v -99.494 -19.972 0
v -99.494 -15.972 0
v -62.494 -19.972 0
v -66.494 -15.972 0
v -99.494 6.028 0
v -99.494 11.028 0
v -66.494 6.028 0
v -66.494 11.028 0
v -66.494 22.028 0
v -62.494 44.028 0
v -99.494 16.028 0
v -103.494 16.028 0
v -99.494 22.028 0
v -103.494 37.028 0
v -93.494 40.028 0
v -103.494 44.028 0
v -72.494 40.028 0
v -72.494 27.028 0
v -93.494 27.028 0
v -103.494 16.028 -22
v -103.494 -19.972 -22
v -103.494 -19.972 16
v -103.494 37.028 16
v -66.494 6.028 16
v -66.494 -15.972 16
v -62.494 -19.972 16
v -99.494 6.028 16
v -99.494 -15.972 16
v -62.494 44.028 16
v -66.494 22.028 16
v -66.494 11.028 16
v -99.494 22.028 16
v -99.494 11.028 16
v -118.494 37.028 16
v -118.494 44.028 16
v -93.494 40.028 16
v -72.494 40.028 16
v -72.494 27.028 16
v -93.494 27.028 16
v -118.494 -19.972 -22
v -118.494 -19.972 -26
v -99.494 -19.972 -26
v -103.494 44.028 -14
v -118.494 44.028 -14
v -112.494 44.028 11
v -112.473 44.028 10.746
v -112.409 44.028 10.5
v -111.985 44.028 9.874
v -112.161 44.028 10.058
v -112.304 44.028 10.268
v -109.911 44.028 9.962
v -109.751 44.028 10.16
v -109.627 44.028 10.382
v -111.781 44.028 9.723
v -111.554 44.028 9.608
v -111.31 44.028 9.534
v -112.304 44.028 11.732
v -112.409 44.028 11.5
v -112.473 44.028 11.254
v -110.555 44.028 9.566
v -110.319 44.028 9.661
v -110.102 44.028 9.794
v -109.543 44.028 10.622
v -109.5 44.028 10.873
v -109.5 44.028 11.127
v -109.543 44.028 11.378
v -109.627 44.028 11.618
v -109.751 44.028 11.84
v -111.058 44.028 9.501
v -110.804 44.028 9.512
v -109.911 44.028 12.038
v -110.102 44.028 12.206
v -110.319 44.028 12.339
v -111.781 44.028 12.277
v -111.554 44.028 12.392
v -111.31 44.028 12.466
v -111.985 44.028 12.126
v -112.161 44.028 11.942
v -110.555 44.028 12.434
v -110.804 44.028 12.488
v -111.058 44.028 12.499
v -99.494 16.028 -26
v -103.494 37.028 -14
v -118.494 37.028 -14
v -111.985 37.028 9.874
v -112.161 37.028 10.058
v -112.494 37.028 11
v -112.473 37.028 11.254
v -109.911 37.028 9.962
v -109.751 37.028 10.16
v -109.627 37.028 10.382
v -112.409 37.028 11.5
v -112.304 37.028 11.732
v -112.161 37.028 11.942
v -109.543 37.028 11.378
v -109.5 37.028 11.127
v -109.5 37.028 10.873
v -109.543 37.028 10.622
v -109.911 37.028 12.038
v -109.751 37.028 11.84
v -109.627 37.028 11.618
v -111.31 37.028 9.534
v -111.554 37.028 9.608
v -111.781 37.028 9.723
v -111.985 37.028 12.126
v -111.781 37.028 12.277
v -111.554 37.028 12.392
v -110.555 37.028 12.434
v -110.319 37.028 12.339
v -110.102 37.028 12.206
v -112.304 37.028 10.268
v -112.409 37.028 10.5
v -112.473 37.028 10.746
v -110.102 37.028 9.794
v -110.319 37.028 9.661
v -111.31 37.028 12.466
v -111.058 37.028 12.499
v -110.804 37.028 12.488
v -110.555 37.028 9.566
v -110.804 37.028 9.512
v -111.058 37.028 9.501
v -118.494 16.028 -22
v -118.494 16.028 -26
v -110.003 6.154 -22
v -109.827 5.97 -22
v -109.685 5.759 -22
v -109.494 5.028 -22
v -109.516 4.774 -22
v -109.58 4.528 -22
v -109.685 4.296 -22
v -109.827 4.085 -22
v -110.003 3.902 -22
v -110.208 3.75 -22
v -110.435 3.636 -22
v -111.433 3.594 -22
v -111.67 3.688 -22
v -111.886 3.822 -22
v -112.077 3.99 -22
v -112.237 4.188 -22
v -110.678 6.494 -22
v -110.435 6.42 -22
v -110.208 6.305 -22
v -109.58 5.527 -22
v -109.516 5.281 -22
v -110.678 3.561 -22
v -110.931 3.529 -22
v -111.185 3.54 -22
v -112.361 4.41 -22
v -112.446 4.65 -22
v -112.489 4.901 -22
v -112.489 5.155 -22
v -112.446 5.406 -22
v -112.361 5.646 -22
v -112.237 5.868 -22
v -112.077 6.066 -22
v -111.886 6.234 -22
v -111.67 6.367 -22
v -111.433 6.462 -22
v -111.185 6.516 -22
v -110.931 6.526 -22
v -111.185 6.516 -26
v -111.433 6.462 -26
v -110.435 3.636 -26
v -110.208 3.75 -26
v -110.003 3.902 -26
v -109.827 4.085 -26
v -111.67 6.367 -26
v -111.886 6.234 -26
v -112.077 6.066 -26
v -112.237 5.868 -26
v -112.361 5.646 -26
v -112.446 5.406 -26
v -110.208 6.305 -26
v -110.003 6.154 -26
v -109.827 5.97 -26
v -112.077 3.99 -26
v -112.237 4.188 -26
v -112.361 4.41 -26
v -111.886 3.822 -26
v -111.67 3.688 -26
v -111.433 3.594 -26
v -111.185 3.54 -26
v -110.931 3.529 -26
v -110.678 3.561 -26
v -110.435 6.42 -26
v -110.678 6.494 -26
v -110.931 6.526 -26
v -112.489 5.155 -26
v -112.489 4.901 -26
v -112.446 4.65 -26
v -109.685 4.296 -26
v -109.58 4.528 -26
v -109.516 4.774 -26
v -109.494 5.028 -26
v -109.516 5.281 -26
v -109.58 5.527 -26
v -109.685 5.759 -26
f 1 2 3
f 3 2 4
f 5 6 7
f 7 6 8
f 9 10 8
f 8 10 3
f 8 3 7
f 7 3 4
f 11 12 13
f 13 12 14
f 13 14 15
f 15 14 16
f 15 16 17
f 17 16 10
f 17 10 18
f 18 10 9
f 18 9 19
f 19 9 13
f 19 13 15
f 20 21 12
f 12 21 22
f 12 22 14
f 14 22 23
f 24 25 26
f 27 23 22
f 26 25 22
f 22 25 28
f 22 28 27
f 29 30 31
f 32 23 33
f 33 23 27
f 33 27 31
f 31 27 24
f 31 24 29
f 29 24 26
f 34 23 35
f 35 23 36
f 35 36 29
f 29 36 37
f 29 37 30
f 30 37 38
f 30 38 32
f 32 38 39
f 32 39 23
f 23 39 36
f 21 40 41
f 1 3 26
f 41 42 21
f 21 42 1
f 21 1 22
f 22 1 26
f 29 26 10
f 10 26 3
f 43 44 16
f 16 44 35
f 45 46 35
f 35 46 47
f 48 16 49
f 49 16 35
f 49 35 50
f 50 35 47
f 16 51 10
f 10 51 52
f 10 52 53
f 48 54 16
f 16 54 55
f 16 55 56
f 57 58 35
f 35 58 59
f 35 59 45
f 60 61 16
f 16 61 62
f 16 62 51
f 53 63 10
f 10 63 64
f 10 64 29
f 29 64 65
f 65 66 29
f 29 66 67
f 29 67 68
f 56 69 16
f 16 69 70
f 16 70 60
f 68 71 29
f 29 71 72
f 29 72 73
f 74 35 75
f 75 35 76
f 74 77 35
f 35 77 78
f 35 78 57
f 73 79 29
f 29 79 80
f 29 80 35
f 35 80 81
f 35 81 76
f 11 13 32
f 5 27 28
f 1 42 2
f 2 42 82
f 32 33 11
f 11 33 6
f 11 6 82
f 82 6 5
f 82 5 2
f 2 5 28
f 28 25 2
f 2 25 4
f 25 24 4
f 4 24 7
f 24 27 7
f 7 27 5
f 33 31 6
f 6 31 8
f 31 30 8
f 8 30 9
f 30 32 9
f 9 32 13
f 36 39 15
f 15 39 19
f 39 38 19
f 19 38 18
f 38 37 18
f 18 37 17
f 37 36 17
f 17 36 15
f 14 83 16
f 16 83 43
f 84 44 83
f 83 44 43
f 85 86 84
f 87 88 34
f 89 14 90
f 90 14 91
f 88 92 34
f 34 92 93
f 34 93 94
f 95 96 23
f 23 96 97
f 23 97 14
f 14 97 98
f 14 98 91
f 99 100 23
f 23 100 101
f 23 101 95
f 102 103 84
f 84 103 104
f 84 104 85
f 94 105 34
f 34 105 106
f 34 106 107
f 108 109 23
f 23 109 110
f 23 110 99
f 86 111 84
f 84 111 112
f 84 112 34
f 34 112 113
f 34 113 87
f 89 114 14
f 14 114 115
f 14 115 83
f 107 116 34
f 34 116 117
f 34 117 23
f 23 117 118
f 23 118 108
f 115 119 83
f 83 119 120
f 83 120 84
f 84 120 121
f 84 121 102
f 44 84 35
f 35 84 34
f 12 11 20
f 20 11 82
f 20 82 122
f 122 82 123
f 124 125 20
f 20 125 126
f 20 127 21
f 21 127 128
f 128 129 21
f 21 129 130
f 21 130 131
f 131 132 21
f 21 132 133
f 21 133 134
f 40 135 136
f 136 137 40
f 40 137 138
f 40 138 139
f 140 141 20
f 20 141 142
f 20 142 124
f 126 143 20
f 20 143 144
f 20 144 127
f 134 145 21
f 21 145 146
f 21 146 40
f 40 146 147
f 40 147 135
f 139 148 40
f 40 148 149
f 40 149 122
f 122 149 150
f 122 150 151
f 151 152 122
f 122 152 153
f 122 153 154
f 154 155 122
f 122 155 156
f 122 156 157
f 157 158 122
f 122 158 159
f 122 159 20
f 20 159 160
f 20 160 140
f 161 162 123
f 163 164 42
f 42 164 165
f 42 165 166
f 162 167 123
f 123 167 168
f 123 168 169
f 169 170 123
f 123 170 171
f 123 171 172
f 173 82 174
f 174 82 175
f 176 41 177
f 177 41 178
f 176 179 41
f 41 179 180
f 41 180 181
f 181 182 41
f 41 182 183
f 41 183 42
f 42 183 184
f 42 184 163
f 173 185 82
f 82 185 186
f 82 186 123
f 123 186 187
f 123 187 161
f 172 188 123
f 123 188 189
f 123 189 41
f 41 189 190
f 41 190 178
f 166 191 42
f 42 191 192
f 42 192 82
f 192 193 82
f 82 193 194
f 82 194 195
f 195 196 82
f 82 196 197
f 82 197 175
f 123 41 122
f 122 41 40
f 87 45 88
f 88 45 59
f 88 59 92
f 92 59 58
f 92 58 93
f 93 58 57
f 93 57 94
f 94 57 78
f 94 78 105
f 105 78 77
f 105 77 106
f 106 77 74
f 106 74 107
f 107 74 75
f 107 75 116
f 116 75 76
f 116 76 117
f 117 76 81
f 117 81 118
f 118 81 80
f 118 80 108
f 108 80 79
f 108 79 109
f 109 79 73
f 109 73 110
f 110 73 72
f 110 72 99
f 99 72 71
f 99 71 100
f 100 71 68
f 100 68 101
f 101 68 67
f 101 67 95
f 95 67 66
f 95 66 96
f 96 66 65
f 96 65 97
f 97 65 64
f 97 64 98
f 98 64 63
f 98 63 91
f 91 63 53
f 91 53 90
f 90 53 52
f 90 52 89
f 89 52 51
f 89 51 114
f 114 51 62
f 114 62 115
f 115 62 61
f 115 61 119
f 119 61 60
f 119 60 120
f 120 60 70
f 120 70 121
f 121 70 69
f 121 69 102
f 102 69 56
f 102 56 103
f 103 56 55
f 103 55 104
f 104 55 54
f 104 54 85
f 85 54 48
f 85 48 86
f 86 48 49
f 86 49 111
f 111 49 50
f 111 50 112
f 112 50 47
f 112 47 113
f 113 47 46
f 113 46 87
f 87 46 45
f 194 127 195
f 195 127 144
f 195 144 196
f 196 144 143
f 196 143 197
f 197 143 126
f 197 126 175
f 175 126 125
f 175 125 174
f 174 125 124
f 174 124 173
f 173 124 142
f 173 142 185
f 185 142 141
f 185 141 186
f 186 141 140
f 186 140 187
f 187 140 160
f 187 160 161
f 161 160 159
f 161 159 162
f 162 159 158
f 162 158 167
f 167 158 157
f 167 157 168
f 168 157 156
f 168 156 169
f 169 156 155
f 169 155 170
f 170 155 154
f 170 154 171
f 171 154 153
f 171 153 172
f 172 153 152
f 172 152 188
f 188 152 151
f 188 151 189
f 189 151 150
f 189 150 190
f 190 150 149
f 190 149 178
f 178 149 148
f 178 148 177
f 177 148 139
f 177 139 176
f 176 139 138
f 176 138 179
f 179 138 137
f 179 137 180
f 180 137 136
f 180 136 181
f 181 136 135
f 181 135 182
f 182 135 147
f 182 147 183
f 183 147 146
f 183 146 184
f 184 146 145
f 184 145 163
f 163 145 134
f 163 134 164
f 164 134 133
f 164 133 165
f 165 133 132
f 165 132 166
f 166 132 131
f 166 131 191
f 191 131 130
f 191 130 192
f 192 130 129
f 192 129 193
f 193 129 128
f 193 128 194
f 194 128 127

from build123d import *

# Parameters (mm, degrees)
CROQUIS1_W              = 41
CROQUIS1_H              = 64
CROQUIS1_W_2            = 33
CROQUIS1_H_2            = 22
CROQUIS1_H_3            = 11
CROQUIS1_W_3            = 21
CROQUIS1_H_4            = 13
SALIENTE_EXTRUIR1_DEPTH = 16
CROQUIS2_W              = 30
CROQUIS2_H              = 7
SALIENTE_EXTRUIR2_DEPTH = 15
SALIENTE_EXTRUIR3_DEPTH = 22
CROQUIS4_W              = 4
CROQUIS4_H              = 36
SALIENTE_EXTRUIR4_DEPTH = 19
CORTAR_EXTRUIR3_START   = -7
CROQUIS5_R              = 1.5
CORTAR_EXTRUIR3_DEPTH   = 7
CROQUIS7_R              = 1.5
CORTAR_EXTRUIR6_DEPTH   = 4


with BuildPart() as part:
    # Croquis1 → Saliente-Extruir1 (new body)
    with BuildSketch(Plane.XY):
        with Locations((-82.994239819, 12.027777778)):
            Rectangle(CROQUIS1_W, CROQUIS1_H)
        with Locations((-82.994239819, -4.972222222)):
            Rectangle(CROQUIS1_W_2, CROQUIS1_H_2, mode=Mode.SUBTRACT)
        with Locations((-82.994239819, 16.527777778)):
            Rectangle(CROQUIS1_W_2, CROQUIS1_H_3, mode=Mode.SUBTRACT)
        with Locations((-82.994239819, 33.527777778)):
            Rectangle(CROQUIS1_W_3, CROQUIS1_H_4, mode=Mode.SUBTRACT)
    extrude(amount=SALIENTE_EXTRUIR1_DEPTH)

    # Croquis2 → Saliente-Extruir2 (add)
    with BuildSketch(Plane.ZY.offset(103.494239819)):
        with Locations((1, 40.527777778)):
            Rectangle(CROQUIS2_W, CROQUIS2_H)
    extrude(amount=SALIENTE_EXTRUIR2_DEPTH)

    # Croquis3 → Saliente-Extruir3 (add)
    with BuildSketch(Plane(origin=(0, 0, 0), x_dir=(-1, 0, 0), z_dir=(0, 0, -1))):
        Polygon((103.494239819, -19.972222222), (99.494239819, -19.972222222), (99.494239819, 6.027777778), (99.494239819, 16.027777778), (103.494239819, 16.027777778), (103.494239819, 6.027777778), align=None)
    extrude(amount=SALIENTE_EXTRUIR3_DEPTH)

    # Croquis4 → Saliente-Extruir4 (add)
    with BuildSketch(Plane(origin=(-99.494239819, 0, 0), x_dir=(0, 0, -1), z_dir=(1, 0, 0))):
        with Locations((24, -1.972222222)):
            Rectangle(CROQUIS4_W, CROQUIS4_H)
    extrude(amount=-SALIENTE_EXTRUIR4_DEPTH)

    # Croquis5 → Cortar-Extruir3 (cut)
    with BuildSketch(Plane(origin=(0, 44.027777778, 0), x_dir=(1, 0, 0), z_dir=(0, 1, 0)).offset(CORTAR_EXTRUIR3_START)):
        with Locations((-110.994239819, -11)):
            Circle(CROQUIS5_R)
    extrude(amount=CORTAR_EXTRUIR3_DEPTH, mode=Mode.SUBTRACT)

    # Croquis7 → Cortar-Extruir6 (cut)
    with BuildSketch(Plane.XY.offset(-22)):
        with Locations((-110.994239819, 5.027777778)):
            Circle(CROQUIS7_R)
    extrude(amount=-CORTAR_EXTRUIR6_DEPTH, mode=Mode.SUBTRACT)


solid = part.part
